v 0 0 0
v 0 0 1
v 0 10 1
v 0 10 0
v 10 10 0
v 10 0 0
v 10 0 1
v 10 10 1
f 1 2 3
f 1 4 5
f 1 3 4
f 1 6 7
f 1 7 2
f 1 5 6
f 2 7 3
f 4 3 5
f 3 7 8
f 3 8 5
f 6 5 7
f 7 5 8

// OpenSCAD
/* Warning, this is a very basic generator with a lot of approximation 
input data : [VQFN, YXX, 10x10x1.0mm, 72, , B, C04-00454B]
generated by com.zoubworld.electronics.cad.model3d.Basic
Date : Sun Feb 15 10:50:48 CET 2026
*/

//body
color("black")
translate([0,0,0])
cube([10.0,10.0,1.0], center=false);
